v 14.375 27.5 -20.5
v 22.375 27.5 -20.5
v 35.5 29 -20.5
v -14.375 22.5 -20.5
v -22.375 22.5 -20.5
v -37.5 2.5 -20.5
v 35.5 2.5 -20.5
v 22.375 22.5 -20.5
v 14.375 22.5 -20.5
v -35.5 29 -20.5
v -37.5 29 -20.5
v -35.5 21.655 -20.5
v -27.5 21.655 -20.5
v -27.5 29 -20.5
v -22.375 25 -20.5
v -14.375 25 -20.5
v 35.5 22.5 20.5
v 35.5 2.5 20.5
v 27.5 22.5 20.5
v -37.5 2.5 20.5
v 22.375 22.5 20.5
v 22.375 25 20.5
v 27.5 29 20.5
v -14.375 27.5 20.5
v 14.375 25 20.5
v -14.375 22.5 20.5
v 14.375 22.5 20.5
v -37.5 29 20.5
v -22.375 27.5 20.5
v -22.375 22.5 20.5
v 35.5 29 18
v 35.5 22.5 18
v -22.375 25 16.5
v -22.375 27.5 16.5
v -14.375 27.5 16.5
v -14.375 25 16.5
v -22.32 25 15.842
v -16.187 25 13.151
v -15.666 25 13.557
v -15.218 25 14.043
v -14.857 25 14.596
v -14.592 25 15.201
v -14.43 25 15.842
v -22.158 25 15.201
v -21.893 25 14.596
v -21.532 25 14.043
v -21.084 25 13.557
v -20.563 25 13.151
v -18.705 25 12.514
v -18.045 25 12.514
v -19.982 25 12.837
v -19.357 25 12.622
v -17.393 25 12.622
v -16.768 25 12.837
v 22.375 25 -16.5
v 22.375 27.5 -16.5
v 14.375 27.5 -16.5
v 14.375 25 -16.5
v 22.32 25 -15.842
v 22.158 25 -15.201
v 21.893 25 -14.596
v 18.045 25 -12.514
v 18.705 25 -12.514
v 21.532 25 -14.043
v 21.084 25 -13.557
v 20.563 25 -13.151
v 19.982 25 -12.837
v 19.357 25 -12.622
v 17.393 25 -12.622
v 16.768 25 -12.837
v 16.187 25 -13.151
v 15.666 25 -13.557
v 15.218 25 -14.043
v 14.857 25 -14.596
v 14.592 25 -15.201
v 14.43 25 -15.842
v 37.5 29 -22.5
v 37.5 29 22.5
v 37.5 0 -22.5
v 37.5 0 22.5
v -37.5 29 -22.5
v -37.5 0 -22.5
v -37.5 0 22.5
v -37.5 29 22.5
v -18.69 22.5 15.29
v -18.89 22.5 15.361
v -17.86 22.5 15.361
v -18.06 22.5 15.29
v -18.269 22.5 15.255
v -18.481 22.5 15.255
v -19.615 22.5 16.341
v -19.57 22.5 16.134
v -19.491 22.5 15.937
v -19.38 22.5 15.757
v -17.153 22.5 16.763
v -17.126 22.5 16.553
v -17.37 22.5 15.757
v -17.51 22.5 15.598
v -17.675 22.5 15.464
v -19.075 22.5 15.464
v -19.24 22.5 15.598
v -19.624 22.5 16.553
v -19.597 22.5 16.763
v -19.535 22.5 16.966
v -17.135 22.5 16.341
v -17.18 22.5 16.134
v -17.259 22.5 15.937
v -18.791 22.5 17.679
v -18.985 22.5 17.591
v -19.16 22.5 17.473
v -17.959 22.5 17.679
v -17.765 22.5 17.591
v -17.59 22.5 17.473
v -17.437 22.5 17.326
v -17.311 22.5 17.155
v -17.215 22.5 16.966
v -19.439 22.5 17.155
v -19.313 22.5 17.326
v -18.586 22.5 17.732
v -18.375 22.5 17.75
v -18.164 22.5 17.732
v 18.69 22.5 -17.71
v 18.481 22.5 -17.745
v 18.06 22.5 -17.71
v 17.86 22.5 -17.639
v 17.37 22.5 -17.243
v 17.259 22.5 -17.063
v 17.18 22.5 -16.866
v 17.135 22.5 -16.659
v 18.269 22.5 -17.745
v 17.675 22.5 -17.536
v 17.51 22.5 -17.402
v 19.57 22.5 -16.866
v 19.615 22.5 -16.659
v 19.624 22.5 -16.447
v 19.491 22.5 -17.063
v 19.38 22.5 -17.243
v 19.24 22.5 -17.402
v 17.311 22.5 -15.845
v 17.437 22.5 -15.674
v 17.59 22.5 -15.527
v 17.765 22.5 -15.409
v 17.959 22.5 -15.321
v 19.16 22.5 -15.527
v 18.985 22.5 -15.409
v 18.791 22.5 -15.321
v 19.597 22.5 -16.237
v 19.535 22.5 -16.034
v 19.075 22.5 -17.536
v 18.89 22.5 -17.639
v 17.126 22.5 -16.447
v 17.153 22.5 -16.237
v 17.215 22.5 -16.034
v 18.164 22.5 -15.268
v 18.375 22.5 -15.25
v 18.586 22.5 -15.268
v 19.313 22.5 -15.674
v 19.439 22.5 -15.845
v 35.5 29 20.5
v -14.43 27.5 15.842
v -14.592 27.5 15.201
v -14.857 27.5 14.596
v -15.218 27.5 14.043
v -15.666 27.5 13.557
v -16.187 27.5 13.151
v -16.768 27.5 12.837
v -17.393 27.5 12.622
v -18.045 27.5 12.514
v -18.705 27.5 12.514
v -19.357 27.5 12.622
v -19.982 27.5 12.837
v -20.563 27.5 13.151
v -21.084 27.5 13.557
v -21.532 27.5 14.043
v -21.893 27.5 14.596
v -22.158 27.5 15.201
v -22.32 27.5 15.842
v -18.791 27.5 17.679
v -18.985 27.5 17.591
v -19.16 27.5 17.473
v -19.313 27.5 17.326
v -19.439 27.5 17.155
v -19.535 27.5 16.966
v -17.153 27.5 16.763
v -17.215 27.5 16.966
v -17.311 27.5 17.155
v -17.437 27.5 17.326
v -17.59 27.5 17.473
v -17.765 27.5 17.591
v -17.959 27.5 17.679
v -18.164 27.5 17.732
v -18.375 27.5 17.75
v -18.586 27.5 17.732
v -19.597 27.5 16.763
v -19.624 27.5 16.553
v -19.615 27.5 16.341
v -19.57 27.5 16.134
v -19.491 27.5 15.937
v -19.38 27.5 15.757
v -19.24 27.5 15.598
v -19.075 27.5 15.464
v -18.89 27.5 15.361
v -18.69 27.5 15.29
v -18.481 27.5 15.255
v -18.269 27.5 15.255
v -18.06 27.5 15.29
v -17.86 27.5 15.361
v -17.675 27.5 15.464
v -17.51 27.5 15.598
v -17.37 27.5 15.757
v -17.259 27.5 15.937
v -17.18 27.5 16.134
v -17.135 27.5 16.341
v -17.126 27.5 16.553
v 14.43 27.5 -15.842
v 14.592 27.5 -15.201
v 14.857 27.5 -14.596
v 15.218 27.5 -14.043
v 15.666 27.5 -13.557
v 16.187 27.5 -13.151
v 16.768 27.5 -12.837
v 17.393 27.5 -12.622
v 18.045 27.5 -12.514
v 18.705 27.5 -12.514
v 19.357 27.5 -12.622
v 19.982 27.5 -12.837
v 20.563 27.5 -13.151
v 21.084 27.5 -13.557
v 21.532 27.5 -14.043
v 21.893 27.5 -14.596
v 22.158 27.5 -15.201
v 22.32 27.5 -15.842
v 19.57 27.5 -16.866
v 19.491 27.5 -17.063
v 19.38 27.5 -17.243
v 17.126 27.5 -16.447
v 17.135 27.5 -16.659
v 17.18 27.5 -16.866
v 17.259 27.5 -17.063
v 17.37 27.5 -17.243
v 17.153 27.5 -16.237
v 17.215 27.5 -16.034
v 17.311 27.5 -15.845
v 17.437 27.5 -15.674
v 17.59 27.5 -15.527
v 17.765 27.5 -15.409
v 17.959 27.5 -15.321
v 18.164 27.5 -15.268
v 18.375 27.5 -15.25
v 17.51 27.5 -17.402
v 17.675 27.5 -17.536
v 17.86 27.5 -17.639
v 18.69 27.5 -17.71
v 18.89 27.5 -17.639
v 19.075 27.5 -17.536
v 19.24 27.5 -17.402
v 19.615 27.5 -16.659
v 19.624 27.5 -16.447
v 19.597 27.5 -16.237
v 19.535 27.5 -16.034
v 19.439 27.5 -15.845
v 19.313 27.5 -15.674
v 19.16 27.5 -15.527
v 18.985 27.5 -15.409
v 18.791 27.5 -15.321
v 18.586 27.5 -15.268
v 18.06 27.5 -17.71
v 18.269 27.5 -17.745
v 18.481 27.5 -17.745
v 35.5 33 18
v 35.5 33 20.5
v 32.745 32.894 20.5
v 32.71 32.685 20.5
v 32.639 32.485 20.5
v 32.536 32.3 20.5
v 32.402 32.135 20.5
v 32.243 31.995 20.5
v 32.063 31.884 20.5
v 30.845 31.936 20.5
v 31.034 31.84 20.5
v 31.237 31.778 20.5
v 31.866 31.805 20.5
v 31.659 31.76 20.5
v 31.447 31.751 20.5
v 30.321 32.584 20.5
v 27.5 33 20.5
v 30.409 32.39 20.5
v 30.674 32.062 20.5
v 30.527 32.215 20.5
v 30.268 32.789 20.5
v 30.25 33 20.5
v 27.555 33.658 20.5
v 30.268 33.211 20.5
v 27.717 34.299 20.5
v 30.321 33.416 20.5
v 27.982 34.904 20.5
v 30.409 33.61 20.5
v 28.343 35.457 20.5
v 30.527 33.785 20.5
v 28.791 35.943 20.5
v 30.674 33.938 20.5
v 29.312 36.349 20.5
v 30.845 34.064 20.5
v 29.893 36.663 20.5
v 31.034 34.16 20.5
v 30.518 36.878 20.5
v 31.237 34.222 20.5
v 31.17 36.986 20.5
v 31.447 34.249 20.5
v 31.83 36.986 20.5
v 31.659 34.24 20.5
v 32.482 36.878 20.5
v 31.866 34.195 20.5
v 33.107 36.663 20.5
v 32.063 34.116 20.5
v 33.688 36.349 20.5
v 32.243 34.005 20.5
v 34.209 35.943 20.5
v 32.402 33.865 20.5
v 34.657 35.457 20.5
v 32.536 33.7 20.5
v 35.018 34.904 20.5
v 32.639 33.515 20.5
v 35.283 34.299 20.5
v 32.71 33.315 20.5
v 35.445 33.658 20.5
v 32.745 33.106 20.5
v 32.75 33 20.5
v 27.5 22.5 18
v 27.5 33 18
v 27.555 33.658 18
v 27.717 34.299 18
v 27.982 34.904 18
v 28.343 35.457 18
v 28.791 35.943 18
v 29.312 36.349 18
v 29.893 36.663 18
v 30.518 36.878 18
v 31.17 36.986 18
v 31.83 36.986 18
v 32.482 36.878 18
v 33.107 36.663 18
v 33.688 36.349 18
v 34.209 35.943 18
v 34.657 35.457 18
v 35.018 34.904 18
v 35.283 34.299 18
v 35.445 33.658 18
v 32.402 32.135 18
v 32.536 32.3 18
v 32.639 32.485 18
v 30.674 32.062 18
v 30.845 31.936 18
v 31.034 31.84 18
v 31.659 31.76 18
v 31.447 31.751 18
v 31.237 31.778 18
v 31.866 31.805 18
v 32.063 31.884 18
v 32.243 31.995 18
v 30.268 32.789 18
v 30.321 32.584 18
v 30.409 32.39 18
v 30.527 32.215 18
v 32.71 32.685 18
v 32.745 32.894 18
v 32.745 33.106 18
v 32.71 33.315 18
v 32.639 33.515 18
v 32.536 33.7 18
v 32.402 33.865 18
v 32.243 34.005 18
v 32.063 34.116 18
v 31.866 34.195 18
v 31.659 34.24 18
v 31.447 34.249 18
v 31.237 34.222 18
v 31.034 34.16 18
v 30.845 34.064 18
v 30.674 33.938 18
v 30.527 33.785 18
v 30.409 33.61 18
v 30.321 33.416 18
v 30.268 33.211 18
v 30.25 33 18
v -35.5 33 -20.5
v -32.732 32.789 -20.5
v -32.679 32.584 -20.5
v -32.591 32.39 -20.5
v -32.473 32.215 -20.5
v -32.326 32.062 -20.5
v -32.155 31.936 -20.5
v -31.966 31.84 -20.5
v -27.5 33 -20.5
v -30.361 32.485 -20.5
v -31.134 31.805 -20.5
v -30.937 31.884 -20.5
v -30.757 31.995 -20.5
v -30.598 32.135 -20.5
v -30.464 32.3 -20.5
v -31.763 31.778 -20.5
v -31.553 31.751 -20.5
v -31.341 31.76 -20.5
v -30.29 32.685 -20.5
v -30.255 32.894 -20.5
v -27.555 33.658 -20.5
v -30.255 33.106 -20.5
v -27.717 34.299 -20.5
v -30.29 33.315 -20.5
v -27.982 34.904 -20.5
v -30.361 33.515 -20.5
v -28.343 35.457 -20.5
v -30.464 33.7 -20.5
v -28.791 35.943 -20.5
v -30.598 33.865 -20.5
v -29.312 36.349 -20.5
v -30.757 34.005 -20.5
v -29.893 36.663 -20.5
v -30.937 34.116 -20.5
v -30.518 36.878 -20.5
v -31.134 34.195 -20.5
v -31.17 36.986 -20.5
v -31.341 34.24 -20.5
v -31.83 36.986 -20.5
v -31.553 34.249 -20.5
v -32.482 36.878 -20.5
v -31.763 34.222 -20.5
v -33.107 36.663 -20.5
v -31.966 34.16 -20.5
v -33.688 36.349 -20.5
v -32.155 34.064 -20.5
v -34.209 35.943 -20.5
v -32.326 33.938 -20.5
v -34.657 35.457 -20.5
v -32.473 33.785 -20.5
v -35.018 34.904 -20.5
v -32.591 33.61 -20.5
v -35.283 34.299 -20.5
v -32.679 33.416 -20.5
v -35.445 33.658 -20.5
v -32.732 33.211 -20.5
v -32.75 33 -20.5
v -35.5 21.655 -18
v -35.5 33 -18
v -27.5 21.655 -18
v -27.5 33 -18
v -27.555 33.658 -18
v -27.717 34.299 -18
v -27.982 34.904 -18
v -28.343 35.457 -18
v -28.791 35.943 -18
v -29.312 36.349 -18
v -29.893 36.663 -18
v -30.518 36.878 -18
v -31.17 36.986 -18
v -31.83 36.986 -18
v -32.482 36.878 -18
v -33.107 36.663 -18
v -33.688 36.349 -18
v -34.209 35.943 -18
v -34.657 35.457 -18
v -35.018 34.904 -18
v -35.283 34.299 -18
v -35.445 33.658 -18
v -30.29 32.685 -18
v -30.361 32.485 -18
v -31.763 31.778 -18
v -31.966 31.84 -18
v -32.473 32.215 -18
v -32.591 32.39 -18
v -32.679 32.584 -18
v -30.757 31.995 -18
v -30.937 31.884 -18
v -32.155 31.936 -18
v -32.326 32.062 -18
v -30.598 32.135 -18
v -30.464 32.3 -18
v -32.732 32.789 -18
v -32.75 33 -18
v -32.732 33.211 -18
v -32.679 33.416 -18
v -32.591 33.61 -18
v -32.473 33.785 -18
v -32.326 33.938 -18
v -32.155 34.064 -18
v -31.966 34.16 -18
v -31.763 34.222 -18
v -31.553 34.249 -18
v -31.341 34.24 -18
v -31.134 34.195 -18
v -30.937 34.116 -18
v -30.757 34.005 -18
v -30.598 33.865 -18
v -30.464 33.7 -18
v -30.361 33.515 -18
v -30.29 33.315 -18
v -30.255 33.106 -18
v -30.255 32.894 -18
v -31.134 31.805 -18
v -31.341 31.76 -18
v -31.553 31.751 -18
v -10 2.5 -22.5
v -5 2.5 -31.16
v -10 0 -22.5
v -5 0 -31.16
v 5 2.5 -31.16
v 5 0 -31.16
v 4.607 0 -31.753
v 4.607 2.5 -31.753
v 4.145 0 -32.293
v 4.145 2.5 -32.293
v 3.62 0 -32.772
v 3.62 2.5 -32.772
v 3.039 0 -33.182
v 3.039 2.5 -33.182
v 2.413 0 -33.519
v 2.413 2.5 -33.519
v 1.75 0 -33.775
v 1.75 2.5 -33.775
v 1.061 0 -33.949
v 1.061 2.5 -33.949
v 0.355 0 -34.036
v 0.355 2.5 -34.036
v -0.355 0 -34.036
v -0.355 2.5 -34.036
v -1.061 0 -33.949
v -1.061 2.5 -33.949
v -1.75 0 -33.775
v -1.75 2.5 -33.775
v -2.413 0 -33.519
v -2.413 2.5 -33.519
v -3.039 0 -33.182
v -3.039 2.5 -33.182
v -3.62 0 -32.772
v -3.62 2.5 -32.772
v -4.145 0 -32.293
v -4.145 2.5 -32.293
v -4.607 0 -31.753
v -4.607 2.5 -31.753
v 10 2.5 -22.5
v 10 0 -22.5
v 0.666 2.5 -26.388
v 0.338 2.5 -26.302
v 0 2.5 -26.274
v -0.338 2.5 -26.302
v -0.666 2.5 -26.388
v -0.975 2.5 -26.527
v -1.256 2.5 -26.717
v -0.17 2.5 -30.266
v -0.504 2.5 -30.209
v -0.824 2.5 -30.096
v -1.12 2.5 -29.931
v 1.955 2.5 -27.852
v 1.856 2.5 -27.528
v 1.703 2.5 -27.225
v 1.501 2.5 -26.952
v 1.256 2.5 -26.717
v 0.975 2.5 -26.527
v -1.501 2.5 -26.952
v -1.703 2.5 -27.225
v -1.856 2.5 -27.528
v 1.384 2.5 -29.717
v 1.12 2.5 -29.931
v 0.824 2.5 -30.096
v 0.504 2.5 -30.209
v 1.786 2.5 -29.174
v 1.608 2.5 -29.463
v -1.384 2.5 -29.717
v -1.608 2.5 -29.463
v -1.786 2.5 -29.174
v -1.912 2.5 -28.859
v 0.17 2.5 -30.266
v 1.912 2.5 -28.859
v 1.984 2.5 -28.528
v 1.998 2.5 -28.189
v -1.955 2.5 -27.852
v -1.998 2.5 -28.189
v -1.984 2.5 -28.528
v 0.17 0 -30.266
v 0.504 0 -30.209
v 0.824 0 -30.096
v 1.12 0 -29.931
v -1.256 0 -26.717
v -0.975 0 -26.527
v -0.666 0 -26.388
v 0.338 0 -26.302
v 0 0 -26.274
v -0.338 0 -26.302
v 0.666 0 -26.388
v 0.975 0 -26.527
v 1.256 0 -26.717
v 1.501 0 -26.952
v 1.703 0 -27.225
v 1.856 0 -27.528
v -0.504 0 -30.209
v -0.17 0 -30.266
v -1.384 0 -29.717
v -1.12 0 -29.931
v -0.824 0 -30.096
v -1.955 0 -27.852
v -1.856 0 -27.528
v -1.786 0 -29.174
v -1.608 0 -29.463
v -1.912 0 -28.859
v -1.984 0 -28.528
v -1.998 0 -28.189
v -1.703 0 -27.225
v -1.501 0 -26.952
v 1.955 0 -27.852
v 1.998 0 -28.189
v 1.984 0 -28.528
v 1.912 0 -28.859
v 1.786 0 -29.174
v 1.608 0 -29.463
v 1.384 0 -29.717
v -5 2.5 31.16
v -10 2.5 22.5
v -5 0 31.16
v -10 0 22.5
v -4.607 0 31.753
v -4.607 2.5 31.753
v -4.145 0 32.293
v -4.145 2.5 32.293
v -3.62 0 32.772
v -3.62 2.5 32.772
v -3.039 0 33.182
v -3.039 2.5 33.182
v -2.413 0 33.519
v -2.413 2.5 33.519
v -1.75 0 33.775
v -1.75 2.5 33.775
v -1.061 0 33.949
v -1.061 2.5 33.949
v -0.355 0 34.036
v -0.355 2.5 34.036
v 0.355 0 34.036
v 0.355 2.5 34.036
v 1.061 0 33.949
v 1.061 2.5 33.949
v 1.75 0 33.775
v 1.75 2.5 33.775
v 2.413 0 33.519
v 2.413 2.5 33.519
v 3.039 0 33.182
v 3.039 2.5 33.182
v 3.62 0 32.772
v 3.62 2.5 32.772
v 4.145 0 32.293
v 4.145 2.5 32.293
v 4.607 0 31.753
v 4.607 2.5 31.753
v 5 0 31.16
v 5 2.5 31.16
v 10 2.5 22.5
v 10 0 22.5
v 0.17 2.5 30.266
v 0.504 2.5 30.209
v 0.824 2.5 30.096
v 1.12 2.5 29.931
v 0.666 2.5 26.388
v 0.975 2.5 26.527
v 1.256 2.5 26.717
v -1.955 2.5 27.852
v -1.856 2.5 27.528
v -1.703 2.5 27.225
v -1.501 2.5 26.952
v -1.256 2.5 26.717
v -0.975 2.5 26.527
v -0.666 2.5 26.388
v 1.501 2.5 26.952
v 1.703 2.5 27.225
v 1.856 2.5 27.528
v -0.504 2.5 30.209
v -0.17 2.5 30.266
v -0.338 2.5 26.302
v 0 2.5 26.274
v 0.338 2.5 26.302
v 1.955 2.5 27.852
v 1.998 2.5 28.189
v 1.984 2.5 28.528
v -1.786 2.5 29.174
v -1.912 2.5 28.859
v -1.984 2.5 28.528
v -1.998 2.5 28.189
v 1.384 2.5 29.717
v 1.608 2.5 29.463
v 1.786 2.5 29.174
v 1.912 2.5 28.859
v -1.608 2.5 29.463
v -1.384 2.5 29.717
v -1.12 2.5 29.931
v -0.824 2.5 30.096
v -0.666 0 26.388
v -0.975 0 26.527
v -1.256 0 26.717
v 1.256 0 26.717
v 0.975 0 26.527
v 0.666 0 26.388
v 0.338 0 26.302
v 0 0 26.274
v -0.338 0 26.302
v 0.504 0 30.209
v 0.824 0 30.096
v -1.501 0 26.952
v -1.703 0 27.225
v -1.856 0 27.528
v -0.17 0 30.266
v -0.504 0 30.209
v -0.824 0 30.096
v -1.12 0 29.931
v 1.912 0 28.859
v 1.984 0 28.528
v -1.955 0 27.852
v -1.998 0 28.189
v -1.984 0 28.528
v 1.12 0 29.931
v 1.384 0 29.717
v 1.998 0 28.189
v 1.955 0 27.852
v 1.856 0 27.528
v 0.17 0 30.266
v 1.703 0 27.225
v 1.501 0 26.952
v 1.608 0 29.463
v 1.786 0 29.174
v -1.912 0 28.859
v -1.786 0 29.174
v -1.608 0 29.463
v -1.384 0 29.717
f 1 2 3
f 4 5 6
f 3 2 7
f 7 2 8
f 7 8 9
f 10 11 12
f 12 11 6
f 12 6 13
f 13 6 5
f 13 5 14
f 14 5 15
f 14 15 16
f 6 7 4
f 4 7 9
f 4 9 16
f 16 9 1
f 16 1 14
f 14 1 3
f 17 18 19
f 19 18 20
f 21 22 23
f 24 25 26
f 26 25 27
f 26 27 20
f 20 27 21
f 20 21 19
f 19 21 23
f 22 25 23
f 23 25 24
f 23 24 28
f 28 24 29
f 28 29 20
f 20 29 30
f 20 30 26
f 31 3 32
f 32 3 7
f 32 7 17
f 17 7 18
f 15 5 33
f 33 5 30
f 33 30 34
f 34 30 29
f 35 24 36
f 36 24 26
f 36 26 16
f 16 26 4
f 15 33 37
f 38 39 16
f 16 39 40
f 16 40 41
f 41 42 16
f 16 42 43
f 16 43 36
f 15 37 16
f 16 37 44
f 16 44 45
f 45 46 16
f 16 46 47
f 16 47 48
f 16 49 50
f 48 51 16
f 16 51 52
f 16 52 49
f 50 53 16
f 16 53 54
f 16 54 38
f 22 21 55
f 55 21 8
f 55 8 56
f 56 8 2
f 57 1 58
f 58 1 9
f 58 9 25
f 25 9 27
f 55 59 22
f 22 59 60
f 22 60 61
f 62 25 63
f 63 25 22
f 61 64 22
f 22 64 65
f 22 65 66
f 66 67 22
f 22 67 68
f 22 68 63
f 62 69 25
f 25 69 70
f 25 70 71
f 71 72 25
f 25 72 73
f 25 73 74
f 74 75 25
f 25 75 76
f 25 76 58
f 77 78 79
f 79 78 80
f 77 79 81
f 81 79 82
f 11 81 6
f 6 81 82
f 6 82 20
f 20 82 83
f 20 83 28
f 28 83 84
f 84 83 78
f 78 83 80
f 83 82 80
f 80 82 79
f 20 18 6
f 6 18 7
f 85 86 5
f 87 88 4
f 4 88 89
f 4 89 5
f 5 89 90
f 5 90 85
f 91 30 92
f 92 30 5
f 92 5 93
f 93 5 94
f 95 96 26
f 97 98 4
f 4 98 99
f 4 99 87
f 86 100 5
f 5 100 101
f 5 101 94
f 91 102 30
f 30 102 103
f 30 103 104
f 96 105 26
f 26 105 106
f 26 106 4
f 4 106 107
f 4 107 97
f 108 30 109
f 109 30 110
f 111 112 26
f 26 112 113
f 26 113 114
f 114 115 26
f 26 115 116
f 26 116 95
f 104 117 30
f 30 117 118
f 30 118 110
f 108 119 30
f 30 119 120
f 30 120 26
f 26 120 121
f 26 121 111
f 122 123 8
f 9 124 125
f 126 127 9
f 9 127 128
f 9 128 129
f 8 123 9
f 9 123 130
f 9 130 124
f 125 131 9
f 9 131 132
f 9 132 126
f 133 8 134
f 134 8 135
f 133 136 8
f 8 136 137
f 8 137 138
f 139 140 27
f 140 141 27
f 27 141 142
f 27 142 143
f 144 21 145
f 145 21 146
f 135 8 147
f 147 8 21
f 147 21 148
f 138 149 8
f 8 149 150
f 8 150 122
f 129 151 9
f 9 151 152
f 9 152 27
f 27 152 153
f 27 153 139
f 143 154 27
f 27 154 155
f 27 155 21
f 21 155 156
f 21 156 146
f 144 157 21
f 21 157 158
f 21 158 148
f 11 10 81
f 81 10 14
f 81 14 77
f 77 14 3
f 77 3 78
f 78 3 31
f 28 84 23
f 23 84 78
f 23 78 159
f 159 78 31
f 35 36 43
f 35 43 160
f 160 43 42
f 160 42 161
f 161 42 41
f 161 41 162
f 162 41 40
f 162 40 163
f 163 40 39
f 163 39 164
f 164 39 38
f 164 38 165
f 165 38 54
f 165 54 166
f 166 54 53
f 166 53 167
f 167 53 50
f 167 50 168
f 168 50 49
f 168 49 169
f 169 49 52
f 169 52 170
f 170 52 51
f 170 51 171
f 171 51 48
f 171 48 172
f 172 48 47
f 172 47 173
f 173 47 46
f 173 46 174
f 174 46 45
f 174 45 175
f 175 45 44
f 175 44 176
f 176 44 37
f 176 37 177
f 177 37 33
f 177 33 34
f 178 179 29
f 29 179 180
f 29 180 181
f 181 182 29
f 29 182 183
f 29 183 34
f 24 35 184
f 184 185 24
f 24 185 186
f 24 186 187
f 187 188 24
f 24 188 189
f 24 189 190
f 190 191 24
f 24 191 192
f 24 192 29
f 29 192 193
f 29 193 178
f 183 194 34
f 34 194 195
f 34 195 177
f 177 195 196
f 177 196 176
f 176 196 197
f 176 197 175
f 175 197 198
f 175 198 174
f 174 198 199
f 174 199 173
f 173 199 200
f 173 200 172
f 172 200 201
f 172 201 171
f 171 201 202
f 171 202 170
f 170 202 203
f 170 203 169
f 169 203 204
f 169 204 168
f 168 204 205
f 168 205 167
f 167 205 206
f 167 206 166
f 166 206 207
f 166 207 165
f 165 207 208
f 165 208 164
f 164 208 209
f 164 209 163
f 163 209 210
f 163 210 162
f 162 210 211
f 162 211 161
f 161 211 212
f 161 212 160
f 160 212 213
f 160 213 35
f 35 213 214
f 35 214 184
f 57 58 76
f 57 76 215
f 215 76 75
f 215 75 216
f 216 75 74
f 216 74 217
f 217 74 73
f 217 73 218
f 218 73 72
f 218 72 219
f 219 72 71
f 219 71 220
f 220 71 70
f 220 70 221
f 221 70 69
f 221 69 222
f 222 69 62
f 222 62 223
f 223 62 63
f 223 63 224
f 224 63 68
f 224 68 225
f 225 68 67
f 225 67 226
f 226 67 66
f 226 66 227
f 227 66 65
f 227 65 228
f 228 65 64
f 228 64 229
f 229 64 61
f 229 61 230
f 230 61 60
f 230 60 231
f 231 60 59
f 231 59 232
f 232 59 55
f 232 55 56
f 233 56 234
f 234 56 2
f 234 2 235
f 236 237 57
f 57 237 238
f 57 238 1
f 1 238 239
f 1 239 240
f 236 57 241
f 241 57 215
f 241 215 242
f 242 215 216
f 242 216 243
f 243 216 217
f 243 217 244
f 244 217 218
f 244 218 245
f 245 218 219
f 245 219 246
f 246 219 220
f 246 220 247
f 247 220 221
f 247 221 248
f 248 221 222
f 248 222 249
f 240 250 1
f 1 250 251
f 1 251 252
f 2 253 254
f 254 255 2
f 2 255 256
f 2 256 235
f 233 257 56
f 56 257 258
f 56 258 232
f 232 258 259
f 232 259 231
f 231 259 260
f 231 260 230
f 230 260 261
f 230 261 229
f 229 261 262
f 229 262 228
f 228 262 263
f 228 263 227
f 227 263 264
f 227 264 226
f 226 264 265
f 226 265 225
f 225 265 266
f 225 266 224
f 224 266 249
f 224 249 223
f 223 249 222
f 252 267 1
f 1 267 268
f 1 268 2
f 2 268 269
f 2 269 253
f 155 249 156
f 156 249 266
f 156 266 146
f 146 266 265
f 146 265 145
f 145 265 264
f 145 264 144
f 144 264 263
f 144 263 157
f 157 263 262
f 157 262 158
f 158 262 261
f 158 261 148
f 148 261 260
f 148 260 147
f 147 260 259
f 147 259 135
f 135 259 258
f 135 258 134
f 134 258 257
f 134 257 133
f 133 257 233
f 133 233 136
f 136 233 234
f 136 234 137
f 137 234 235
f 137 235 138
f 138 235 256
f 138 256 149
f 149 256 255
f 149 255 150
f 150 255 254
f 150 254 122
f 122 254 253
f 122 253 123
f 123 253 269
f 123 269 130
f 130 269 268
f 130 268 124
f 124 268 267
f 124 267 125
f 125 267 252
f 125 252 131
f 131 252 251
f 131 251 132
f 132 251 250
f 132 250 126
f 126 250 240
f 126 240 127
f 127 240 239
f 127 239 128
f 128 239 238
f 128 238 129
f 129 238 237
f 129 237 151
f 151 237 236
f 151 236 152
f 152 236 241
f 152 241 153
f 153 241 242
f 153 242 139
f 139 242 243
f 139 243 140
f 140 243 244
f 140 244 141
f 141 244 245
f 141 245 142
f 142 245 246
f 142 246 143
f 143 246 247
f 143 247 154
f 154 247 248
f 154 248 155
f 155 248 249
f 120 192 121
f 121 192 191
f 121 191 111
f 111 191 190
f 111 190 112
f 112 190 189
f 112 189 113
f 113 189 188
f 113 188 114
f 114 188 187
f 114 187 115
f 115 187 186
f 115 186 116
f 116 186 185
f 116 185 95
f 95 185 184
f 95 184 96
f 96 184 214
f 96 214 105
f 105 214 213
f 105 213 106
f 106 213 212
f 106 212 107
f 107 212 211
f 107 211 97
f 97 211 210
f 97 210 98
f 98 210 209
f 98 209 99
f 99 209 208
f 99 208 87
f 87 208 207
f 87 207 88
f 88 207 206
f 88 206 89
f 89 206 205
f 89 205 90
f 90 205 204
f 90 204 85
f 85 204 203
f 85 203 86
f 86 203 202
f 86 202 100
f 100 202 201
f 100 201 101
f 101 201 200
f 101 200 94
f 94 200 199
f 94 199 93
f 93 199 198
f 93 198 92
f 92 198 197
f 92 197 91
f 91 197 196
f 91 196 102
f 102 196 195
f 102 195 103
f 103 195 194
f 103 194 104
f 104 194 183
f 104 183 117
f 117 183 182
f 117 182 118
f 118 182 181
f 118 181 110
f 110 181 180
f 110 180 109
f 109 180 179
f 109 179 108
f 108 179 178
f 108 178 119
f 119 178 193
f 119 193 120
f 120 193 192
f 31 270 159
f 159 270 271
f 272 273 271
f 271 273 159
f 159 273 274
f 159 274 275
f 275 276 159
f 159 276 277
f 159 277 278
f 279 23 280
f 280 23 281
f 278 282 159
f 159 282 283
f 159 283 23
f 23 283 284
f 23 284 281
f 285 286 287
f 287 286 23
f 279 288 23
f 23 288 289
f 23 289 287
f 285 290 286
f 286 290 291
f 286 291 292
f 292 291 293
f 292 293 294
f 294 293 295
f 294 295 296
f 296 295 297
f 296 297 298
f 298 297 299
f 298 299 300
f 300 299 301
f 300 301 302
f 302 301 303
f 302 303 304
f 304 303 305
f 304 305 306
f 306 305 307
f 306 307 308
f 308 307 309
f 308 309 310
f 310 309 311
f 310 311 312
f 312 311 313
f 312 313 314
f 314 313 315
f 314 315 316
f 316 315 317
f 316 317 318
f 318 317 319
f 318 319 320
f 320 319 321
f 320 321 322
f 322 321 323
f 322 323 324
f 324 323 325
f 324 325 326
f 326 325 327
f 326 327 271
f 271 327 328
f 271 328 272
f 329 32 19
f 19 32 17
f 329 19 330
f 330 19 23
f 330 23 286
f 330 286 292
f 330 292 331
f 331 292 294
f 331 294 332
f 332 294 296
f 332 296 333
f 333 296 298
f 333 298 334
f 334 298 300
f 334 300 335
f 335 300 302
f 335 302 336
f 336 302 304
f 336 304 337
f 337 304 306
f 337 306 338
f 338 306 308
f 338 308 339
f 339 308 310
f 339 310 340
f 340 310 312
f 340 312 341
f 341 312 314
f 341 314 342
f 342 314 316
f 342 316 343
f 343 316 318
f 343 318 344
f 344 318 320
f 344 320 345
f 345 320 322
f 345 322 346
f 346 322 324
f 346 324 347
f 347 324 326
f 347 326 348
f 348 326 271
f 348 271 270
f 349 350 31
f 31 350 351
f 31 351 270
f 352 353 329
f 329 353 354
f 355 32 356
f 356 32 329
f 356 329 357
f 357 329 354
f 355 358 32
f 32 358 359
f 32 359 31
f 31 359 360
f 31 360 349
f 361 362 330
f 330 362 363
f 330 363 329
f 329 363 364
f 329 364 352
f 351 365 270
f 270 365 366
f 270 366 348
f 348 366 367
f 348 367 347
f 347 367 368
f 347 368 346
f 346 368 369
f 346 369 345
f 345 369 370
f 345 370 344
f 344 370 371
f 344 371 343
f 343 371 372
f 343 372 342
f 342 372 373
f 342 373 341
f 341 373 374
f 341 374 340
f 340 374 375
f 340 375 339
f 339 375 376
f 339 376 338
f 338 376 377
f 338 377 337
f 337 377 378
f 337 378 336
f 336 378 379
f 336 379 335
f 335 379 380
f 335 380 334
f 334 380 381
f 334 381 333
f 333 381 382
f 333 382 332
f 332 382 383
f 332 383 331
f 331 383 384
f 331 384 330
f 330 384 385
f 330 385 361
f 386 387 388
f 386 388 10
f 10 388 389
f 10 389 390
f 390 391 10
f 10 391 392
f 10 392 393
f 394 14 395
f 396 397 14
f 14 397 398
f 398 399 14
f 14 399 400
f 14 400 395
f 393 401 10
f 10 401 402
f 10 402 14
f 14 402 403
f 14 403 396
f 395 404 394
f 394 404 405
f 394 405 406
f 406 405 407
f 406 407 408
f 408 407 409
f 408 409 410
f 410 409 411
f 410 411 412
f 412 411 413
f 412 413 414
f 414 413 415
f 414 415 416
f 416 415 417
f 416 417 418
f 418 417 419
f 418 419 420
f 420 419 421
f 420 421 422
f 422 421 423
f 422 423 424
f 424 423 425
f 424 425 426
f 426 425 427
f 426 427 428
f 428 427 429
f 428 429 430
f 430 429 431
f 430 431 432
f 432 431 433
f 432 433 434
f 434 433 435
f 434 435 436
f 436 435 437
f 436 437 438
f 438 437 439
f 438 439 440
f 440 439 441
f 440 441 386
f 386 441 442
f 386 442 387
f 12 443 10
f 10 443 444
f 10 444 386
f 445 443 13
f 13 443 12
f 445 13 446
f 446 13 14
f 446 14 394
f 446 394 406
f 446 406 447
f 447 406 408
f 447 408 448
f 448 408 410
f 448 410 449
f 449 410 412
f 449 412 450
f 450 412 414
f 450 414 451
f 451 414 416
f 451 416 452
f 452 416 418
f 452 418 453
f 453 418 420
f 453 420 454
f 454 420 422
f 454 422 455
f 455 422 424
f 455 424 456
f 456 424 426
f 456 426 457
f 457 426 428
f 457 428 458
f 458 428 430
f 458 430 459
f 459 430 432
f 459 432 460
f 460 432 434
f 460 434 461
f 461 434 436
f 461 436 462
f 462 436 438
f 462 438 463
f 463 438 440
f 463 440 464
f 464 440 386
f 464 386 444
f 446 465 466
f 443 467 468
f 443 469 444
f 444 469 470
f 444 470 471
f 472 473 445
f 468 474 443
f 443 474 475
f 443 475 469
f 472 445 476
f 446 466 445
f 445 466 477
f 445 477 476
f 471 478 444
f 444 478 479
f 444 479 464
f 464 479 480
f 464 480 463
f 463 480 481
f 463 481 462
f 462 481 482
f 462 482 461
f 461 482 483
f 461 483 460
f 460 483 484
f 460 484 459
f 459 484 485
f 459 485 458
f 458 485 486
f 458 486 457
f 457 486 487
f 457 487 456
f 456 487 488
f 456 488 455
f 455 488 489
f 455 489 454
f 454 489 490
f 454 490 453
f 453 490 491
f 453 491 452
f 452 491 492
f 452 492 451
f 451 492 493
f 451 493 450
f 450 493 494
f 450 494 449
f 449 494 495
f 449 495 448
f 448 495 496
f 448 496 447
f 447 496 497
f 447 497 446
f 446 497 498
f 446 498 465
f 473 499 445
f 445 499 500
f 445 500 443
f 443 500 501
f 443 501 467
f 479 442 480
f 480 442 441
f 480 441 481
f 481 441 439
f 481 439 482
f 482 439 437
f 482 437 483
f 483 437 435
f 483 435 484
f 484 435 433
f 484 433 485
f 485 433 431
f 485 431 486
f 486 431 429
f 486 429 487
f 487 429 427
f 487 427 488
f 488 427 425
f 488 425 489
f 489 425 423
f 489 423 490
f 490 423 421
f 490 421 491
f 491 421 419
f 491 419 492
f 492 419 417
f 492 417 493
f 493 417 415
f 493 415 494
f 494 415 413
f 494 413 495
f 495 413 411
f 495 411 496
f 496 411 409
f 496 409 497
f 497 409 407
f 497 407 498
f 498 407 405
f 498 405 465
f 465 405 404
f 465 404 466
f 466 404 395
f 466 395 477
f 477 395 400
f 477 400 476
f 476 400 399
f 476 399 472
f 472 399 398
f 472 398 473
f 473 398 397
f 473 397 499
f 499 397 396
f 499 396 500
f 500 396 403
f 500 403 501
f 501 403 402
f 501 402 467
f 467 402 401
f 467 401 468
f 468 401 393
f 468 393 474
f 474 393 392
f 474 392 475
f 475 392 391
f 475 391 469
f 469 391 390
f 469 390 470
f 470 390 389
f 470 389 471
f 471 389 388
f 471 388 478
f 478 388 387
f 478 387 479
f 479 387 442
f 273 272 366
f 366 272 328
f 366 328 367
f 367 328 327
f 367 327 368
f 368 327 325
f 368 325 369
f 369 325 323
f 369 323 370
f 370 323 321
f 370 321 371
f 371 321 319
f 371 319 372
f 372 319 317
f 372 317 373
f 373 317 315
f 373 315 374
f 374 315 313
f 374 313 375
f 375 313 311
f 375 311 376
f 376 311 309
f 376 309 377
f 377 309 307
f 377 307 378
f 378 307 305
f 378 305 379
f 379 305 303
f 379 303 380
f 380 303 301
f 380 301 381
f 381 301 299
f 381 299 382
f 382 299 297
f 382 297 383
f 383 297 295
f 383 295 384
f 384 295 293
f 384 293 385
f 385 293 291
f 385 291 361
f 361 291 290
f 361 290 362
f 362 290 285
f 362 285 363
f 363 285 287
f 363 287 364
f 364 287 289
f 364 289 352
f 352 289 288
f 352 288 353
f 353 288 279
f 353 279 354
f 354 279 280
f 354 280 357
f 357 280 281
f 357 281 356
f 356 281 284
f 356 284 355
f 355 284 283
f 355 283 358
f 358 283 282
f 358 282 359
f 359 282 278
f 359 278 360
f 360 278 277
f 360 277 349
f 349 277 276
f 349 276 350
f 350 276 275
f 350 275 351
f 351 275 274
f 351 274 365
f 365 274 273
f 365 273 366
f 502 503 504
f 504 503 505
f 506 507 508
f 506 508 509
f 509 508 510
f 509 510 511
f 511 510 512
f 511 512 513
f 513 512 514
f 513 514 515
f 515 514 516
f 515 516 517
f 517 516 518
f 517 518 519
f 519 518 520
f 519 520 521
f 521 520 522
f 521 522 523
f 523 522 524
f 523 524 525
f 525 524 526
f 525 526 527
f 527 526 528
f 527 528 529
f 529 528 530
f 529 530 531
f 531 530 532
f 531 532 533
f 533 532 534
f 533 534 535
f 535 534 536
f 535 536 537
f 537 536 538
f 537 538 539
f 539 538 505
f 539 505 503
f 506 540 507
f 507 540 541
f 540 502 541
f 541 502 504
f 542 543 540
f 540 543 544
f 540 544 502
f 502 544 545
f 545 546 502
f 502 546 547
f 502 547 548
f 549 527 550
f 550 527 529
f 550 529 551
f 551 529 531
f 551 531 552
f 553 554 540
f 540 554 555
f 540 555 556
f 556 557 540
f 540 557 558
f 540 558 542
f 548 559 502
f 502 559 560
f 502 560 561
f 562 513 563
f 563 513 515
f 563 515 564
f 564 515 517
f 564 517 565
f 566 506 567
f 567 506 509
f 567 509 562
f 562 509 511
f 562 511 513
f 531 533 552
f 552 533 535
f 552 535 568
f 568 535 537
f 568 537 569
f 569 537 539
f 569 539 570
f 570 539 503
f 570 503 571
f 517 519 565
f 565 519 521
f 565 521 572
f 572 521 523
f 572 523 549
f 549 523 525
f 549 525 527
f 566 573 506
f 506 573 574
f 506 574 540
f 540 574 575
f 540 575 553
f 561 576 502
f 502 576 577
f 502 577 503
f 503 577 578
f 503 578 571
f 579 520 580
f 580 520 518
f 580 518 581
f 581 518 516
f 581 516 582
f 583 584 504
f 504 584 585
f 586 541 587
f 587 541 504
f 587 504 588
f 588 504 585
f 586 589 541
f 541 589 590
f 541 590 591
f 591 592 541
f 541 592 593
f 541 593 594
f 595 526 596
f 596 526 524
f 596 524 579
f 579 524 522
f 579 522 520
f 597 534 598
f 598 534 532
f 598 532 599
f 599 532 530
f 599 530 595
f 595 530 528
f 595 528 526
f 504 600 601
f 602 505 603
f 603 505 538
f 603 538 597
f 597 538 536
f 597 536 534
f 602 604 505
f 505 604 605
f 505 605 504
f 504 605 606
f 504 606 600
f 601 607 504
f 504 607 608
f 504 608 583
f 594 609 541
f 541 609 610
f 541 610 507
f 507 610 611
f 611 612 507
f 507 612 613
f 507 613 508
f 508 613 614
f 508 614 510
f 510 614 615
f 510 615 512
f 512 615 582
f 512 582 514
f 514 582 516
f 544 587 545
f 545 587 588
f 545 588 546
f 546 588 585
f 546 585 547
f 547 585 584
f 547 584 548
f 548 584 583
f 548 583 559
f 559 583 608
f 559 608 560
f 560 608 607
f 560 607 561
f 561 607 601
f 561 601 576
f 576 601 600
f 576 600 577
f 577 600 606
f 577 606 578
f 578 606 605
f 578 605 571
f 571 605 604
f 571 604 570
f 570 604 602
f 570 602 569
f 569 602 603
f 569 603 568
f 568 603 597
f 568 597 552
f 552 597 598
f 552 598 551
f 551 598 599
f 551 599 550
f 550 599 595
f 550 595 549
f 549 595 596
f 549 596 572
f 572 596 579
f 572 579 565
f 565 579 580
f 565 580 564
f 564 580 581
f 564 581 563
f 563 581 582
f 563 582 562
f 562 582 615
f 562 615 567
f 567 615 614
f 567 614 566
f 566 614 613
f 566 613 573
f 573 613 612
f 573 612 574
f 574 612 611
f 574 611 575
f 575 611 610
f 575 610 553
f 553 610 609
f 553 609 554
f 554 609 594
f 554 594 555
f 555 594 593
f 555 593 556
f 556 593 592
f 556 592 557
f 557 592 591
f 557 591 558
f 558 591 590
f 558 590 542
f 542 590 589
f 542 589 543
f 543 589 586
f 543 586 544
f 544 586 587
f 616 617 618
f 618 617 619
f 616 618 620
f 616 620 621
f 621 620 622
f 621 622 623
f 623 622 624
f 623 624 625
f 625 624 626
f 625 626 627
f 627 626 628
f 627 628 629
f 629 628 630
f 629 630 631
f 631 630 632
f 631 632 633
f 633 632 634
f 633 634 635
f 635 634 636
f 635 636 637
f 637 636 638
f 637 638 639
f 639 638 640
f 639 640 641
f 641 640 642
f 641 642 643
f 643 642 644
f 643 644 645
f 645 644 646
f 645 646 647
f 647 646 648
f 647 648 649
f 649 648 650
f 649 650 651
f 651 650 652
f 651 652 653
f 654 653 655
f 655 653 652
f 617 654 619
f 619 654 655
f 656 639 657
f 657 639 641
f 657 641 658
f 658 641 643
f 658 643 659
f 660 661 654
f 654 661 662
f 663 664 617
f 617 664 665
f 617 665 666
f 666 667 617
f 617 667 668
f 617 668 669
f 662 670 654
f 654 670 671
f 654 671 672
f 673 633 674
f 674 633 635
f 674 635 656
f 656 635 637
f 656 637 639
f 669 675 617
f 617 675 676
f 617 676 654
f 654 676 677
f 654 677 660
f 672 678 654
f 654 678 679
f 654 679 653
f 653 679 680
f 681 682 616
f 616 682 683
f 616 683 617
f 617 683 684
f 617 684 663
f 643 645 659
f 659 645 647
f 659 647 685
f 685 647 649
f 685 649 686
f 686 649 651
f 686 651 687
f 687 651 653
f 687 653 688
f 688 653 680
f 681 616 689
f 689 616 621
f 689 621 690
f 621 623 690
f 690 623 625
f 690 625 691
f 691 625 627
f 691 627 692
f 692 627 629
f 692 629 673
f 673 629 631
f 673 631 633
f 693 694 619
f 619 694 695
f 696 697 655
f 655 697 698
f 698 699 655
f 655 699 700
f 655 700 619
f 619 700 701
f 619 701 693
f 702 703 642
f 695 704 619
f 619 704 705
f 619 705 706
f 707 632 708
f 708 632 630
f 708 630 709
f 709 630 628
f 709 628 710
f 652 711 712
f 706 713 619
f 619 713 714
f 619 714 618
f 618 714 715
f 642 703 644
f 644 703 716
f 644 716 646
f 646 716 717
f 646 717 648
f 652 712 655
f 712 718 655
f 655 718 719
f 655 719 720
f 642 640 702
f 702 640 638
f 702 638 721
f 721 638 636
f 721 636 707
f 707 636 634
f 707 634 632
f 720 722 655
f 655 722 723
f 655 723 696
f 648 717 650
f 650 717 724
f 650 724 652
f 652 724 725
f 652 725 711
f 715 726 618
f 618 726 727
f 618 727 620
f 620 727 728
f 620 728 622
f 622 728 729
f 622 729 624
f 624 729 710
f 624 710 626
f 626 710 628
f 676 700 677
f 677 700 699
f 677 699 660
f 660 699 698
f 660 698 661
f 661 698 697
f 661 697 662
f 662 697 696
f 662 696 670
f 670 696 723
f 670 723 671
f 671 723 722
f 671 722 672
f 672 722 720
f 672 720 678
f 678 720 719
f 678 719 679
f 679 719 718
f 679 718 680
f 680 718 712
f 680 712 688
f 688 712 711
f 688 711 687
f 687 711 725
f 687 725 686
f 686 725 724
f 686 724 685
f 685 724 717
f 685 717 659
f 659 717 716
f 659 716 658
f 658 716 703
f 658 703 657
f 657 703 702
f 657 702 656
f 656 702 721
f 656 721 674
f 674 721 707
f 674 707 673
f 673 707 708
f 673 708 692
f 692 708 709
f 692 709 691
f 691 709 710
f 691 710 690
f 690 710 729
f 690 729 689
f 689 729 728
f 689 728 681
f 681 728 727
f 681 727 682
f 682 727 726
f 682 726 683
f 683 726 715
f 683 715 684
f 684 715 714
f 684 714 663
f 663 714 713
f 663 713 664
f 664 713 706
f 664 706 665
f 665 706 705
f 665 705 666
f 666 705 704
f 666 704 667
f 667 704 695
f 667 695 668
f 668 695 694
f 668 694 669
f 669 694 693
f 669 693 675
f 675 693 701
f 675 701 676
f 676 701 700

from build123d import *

# Parameters (mm, degrees)
SKETCH1_W           = 75
SKETCH1_H           = 45
BOSS_EXTRUDE1_DEPTH = 2.5
SKETCH2_W           = 75
SKETCH2_H           = 45
SKETCH2_W_2         = 71
SKETCH2_H_2         = 41
BOSS_EXTRUDE2_DEPTH = 20
SKETCH4_W           = 41
SKETCH4_H           = 20
CUT_EXTRUDE1_DEPTH  = 2
SKETCH5_W           = 8
SKETCH5_H           = 45
BOSS_EXTRUDE4_DEPTH = 2.5
BOSS_EXTRUDE5_DEPTH = 6.5
BOSS_EXTRUDE6_DEPTH = 2.5
SKETCH9_R           = 1.25
CUT_EXTRUDE2_DEPTH  = 5
BOSS_EXTRUDE7_DEPTH = 2.5
BOSS_EXTRUDE8_DEPTH = 2.5
SKETCH14_R          = 1.25
CUT_EXTRUDE3_DEPTH  = 2.5
SKETCH15_R          = 1.25
CUT_EXTRUDE4_DEPTH  = 2.5
BOSS_EXTRUDE9_DEPTH = 2.5
SKETCH20_R          = 2
CUT_EXTRUDE6_DEPTH  = 2.5


with BuildPart() as part:
    # Sketch1 → Boss-Extrude1 (new body)
    with BuildSketch(Plane(origin=(0, 0, 0), x_dir=(1, 0, 0), z_dir=(0, 1, 0))):
        Rectangle(SKETCH1_W, SKETCH1_H)
    extrude(amount=BOSS_EXTRUDE1_DEPTH)

    # Sketch2 → Boss-Extrude2 (add)
    with BuildSketch(Plane(origin=(0, 2.5, 0), x_dir=(1, 0, 0), z_dir=(0, 1, 0))):
        Rectangle(SKETCH2_W, SKETCH2_H)
        Rectangle(SKETCH2_W_2, SKETCH2_H_2, mode=Mode.SUBTRACT)
    extrude(amount=BOSS_EXTRUDE2_DEPTH)

    # Sketch4 → Cut-Extrude1 (cut)
    with BuildSketch(Plane.ZY.offset(37.5)):
        with Locations((0, 12.5)):
            Rectangle(SKETCH4_W, SKETCH4_H)
    extrude(amount=-CUT_EXTRUDE1_DEPTH, mode=Mode.SUBTRACT)

    # Sketch5 → Boss-Extrude4 (add)
    with BuildSketch(Plane(origin=(0, 22.5, 0), x_dir=(1, 0, 0), z_dir=(0, 1, 0))):
        with Locations((-18.375, 0)):
            Rectangle(SKETCH5_W, SKETCH5_H)
        with Locations((18.375, 0)):
            Rectangle(SKETCH5_W, SKETCH5_H)
    extrude(amount=BOSS_EXTRUDE4_DEPTH)

    # Sketch7 → Boss-Extrude5 (add)
    with BuildSketch(Plane(origin=(0, 22.5, 0), x_dir=(1, 0, 0), z_dir=(0, 1, 0))):
        Polygon((-37.5, 22.5), (37.5, 22.5), (37.5, -22.5), (-37.5, -22.5), (-37.5, -20.5), (35.5, -20.5), (35.5, 20.5), (-37.5, 20.5), align=None)
    extrude(amount=BOSS_EXTRUDE5_DEPTH)

    # Sketch8 → Boss-Extrude6 (add)
    with BuildSketch(Plane(origin=(0, 25, 0), x_dir=(1, 0, 0), z_dir=(0, 1, 0))):
        with BuildLine():
            Line((-22.375, -20.5), (-14.375, -20.5))
            Line((-14.375, -20.5), (-14.375, -16.5))
            ThreePointArc((-14.375, -16.5), (-18.375, -12.5), (-22.375, -16.5))
            Line((-22.375, -16.5), (-22.375, -20.5))
        make_face()
        with BuildLine():
            Line((14.375, 16.5), (14.375, 20.5))
            Line((14.375, 20.5), (22.375, 20.5))
            Line((22.375, 20.5), (22.375, 16.5))
            ThreePointArc((22.375, 16.5), (18.375, 12.5), (14.375, 16.5))
        make_face()
    extrude(amount=BOSS_EXTRUDE6_DEPTH)

    # Sketch9 → Cut-Extrude2 (cut)
    with BuildSketch(Plane(origin=(0, 27.5, 0), x_dir=(1, 0, 0), z_dir=(0, 1, 0))):
        with Locations((-18.375, -16.5)):
            Circle(SKETCH9_R)
        with Locations((18.375, 16.5)):
            Circle(SKETCH9_R)
    extrude(amount=-CUT_EXTRUDE2_DEPTH, mode=Mode.SUBTRACT)

    # Sketch12 → Boss-Extrude7 (add)
    with BuildSketch(Plane(origin=(0, 0, 20.5), x_dir=(-1, 0, 0), z_dir=(0, 0, -1))):
        with BuildLine():
            Line((-35.5, 22.5), (-27.5, 22.5))
            Line((-27.5, 22.5), (-27.5, 29))
            Line((-27.5, 29), (-27.5, 33))
            ThreePointArc((-27.5, 33), (-31.5, 37), (-35.5, 33))
            Line((-35.5, 33), (-35.5, 22.5))
        make_face()
    extrude(amount=BOSS_EXTRUDE7_DEPTH)

    # Sketch13 → Boss-Extrude8 (add)
    with BuildSketch(Plane.XY.offset(-20.5)):
        with BuildLine():
            Line((-35.5, 29), (-35.5, 21.654961558))
            Line((-35.5, 21.654961558), (-27.5, 21.654961558))
            Line((-27.5, 21.654961558), (-27.5, 29))
            Line((-27.5, 29), (-27.5, 33))
            ThreePointArc((-27.5, 33), (-31.5, 37), (-35.5, 33))
            Line((-35.5, 33), (-35.5, 29))
        make_face()
    extrude(amount=BOSS_EXTRUDE8_DEPTH)

    # Sketch14 → Cut-Extrude3 (cut)
    with BuildSketch(Plane(origin=(0, 0, -20.5), x_dir=(-1, 0, 0), z_dir=(0, 0, -1))):
        with Locations((31.5, 33)):
            Circle(SKETCH14_R)
    extrude(amount=-CUT_EXTRUDE3_DEPTH, mode=Mode.SUBTRACT)

    # Sketch15 → Cut-Extrude4 (cut)
    with BuildSketch(Plane(origin=(0, 0, 18), x_dir=(-1, 0, 0), z_dir=(0, 0, -1))):
        with Locations((-31.5, 33)):
            Circle(SKETCH15_R)
    extrude(amount=-CUT_EXTRUDE4_DEPTH, mode=Mode.SUBTRACT)


with BuildPart() as body_2:
    # Sketch16 → Boss-Extrude9 (new body)
    with BuildSketch(Plane(origin=(0, 0, 0), x_dir=(-1, 0, 0), z_dir=(0, -1, 0))):
        with BuildLine():
            Line((-10, -22.5), (10, -22.5))
            Line((10, -22.5), (5, -31.160254038))
            ThreePointArc((5, -31.160254038), (0, -34.047005384), (-5, -31.160254038))
            Line((-5, -31.160254038), (-10, -22.5))
        make_face()
    extrude(amount=-BOSS_EXTRUDE9_DEPTH)

    # Sketch20 → Cut-Extrude6 (cut)
    with BuildSketch(Plane.XZ):
        with Locations((0, 28.273502692)):
            Circle(SKETCH20_R)
    extrude(amount=-CUT_EXTRUDE6_DEPTH, mode=Mode.SUBTRACT)


with BuildPart() as body_3:
    # Mirror2: mirrored copy
    add(body_2.part.mirror(Plane.XY))


solid = Compound([part.part, body_2.part, body_3.part])
